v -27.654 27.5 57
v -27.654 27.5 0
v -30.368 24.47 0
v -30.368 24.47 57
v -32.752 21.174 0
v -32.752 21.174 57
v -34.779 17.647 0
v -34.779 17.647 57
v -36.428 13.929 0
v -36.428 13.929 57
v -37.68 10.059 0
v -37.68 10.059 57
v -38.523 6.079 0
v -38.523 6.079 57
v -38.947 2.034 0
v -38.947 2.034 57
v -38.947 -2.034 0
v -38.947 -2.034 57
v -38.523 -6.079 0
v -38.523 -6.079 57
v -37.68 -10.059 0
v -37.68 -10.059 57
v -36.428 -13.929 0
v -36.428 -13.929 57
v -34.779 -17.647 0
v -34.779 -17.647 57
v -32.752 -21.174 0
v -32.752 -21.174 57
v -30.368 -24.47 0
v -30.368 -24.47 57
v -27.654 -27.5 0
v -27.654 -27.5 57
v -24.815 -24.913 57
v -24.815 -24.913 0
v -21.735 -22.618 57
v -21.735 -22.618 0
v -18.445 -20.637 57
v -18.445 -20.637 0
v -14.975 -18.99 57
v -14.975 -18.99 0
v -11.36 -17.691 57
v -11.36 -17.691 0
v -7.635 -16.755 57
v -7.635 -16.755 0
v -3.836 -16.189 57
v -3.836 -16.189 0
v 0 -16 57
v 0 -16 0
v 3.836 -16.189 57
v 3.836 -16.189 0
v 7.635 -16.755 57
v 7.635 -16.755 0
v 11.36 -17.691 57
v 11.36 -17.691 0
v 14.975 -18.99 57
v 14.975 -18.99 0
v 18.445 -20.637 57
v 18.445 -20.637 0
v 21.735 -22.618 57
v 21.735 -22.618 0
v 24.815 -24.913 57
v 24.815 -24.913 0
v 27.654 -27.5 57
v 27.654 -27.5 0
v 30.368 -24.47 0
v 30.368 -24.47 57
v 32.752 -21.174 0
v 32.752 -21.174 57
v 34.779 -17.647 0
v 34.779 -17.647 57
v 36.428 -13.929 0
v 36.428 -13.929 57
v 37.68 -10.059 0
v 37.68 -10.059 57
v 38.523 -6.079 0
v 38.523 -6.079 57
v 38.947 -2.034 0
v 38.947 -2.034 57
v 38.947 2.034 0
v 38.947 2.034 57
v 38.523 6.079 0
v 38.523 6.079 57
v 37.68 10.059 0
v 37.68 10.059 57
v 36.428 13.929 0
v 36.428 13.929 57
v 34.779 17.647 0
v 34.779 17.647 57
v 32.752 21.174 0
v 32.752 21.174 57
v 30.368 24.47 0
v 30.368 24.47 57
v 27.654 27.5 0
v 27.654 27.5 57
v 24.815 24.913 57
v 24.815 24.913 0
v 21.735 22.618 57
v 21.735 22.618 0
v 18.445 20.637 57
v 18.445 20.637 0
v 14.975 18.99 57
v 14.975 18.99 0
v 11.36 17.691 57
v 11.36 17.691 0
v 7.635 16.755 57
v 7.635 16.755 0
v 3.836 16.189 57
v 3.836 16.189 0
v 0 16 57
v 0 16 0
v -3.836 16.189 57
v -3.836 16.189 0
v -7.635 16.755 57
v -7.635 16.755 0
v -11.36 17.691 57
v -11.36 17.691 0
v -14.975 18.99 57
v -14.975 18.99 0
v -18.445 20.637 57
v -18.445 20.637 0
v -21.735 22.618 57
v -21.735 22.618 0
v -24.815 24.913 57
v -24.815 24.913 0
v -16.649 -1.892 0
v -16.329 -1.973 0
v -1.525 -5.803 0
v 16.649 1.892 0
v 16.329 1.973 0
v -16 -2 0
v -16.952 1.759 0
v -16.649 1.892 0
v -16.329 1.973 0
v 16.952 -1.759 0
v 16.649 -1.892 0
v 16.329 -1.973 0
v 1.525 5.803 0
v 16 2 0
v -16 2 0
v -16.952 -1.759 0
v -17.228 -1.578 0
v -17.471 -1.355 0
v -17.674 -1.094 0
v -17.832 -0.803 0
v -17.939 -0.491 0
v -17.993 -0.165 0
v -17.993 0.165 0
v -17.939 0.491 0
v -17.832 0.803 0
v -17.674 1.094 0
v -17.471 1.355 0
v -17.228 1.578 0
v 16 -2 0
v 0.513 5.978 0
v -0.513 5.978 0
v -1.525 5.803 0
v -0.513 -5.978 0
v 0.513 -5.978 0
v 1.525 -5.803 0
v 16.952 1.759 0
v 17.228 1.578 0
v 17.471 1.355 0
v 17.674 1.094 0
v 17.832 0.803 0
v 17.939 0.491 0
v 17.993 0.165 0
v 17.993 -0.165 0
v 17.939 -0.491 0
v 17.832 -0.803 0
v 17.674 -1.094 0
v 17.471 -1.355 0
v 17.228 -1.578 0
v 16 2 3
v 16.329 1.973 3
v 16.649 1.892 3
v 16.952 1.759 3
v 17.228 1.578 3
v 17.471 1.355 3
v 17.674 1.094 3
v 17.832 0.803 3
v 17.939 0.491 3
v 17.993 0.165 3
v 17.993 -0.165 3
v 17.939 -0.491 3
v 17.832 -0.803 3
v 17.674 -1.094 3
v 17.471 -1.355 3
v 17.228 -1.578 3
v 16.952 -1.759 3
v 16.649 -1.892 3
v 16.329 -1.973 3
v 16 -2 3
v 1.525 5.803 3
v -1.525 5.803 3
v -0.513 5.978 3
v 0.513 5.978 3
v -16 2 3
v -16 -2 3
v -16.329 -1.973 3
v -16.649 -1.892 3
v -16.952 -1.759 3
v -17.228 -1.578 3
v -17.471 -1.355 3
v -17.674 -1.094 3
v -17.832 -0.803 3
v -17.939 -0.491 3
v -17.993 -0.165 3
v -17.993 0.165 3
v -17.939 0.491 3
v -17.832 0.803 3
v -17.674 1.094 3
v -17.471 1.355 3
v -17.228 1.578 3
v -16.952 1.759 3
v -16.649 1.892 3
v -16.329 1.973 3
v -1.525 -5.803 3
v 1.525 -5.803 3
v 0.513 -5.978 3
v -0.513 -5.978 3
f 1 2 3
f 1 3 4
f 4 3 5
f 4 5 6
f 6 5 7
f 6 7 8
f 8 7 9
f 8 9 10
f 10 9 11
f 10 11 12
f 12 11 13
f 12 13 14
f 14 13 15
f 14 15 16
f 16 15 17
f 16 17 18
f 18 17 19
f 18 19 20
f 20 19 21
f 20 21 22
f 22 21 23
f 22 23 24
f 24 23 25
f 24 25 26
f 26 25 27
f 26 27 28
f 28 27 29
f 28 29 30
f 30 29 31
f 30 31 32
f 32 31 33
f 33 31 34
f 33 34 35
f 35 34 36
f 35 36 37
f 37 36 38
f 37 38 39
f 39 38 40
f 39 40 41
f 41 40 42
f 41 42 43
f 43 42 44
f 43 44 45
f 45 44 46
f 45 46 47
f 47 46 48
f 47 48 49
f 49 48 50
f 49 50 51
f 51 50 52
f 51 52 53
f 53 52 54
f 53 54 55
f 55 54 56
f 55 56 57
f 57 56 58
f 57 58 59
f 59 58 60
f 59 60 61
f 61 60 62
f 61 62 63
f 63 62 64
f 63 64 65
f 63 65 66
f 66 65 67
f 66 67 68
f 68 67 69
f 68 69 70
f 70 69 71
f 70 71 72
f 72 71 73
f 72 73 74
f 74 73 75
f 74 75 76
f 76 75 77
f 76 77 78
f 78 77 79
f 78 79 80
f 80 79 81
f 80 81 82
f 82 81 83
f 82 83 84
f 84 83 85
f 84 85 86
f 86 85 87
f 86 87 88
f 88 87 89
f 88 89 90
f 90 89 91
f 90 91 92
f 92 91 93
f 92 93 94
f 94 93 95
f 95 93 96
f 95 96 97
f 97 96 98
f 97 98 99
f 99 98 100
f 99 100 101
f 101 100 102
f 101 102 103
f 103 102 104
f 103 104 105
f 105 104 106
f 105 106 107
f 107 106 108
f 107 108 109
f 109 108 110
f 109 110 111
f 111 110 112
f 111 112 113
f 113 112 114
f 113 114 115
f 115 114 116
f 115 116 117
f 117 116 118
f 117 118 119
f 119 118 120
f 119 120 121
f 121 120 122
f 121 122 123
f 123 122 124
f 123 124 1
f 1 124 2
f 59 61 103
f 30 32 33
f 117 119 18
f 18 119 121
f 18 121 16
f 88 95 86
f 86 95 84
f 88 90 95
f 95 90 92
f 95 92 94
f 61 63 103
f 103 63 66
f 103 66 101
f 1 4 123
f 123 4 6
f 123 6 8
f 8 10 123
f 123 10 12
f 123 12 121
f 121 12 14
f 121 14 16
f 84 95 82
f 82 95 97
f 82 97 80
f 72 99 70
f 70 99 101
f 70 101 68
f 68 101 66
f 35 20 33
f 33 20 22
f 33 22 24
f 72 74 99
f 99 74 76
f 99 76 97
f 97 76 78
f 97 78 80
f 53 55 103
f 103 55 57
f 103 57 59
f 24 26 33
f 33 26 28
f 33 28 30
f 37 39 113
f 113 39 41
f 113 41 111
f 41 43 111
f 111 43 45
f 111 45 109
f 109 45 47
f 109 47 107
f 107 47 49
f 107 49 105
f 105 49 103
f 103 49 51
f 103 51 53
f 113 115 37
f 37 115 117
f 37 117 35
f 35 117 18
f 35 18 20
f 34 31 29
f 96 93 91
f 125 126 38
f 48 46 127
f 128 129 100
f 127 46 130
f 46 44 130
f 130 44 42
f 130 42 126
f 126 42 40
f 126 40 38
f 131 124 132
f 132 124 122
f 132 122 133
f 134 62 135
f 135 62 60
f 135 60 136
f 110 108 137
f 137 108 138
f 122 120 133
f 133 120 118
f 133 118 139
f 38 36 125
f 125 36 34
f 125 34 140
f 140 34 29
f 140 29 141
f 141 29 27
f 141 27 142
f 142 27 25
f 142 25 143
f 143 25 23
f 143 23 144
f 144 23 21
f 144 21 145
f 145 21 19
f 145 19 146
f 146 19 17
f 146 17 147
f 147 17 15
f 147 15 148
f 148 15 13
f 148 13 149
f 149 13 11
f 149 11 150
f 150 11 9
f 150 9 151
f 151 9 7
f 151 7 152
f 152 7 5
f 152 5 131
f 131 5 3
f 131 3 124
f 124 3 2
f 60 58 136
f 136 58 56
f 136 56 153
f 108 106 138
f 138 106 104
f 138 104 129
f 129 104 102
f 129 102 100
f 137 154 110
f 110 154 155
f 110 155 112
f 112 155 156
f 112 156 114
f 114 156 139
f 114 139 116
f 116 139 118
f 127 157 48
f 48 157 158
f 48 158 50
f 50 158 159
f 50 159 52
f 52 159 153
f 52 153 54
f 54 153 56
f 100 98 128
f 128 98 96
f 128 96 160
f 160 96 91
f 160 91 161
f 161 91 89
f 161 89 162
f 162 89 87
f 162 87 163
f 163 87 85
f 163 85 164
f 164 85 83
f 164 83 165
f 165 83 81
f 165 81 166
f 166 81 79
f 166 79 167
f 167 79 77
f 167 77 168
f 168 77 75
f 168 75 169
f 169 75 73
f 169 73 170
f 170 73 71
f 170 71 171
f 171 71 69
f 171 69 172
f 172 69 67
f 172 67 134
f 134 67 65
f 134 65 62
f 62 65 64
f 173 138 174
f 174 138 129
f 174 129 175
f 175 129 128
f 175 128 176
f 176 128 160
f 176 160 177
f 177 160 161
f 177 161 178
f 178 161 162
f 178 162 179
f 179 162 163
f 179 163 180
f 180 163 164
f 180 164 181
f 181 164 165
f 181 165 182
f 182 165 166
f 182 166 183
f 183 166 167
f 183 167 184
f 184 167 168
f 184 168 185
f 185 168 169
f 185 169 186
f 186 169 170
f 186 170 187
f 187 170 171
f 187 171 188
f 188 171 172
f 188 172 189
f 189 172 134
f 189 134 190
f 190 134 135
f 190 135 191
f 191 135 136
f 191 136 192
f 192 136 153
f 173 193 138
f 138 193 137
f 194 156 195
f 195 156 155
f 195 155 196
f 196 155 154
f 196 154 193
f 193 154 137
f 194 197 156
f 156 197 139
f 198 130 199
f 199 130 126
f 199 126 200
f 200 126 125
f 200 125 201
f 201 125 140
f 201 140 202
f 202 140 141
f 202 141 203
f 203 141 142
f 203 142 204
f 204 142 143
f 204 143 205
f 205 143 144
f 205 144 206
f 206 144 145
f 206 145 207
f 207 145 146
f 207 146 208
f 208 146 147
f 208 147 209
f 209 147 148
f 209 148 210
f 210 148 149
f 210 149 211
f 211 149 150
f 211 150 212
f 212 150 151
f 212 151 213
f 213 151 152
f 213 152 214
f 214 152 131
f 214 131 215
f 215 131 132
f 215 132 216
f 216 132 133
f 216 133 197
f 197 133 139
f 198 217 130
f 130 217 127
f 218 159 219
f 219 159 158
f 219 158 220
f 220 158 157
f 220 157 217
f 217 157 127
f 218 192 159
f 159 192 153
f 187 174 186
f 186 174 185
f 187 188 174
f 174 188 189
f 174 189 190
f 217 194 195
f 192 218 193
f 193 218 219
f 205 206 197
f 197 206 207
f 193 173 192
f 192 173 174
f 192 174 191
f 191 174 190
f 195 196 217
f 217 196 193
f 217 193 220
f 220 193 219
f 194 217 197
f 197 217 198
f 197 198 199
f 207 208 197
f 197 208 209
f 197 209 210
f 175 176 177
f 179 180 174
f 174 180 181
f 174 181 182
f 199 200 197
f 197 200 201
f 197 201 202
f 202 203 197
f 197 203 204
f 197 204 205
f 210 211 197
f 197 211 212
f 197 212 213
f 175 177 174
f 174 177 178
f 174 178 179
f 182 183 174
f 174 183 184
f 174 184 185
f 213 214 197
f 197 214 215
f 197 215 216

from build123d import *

# Parameters (mm, degrees)
BOSS_EXTRUDE1_DEPTH = 57
CUT_EXTRUDE1_DEPTH  = 3


with BuildPart() as part:
    # Sketch1 → Boss-Extrude1 (new body)
    with BuildSketch(Plane.XY):
        with BuildLine():
            ThreePointArc((-27.654113618, 27.5), (-39, 0), (-27.654113618, -27.5))
            ThreePointArc((-27.654113618, -27.5), (0, -16), (27.654113618, -27.5))
            ThreePointArc((27.654113618, -27.5), (39, 0), (27.654113618, 27.5))
            ThreePointArc((27.654113618, 27.5), (0, 16), (-27.654113618, 27.5))
        make_face()
    extrude(amount=BOSS_EXTRUDE1_DEPTH)

    # Sketch2 → Cut-Extrude1 (cut)
    with BuildSketch(Plane(origin=(0, 0, 0), x_dir=(-1, 0, 0), z_dir=(0, 0, -1))):
        with BuildLine():
            Line((16, 2), (1.524617098, 5.803063217))
            ThreePointArc((1.524617098, 5.803063217), (0, 6), (-1.524617098, 5.803063217))
            Line((-1.524617098, 5.803063217), (-16, 2))
            ThreePointArc((-16, 2), (-18, 0), (-16, -2))
            Line((-16, -2), (-1.524617098, -5.803063217))
            ThreePointArc((-1.524617098, -5.803063217), (0, -6), (1.524617098, -5.803063217))
            Line((1.524617098, -5.803063217), (16, -2))
            ThreePointArc((16, -2), (18, 0), (16, 2))
        make_face()
    extrude(amount=-CUT_EXTRUDE1_DEPTH, mode=Mode.SUBTRACT)


solid = part.part
